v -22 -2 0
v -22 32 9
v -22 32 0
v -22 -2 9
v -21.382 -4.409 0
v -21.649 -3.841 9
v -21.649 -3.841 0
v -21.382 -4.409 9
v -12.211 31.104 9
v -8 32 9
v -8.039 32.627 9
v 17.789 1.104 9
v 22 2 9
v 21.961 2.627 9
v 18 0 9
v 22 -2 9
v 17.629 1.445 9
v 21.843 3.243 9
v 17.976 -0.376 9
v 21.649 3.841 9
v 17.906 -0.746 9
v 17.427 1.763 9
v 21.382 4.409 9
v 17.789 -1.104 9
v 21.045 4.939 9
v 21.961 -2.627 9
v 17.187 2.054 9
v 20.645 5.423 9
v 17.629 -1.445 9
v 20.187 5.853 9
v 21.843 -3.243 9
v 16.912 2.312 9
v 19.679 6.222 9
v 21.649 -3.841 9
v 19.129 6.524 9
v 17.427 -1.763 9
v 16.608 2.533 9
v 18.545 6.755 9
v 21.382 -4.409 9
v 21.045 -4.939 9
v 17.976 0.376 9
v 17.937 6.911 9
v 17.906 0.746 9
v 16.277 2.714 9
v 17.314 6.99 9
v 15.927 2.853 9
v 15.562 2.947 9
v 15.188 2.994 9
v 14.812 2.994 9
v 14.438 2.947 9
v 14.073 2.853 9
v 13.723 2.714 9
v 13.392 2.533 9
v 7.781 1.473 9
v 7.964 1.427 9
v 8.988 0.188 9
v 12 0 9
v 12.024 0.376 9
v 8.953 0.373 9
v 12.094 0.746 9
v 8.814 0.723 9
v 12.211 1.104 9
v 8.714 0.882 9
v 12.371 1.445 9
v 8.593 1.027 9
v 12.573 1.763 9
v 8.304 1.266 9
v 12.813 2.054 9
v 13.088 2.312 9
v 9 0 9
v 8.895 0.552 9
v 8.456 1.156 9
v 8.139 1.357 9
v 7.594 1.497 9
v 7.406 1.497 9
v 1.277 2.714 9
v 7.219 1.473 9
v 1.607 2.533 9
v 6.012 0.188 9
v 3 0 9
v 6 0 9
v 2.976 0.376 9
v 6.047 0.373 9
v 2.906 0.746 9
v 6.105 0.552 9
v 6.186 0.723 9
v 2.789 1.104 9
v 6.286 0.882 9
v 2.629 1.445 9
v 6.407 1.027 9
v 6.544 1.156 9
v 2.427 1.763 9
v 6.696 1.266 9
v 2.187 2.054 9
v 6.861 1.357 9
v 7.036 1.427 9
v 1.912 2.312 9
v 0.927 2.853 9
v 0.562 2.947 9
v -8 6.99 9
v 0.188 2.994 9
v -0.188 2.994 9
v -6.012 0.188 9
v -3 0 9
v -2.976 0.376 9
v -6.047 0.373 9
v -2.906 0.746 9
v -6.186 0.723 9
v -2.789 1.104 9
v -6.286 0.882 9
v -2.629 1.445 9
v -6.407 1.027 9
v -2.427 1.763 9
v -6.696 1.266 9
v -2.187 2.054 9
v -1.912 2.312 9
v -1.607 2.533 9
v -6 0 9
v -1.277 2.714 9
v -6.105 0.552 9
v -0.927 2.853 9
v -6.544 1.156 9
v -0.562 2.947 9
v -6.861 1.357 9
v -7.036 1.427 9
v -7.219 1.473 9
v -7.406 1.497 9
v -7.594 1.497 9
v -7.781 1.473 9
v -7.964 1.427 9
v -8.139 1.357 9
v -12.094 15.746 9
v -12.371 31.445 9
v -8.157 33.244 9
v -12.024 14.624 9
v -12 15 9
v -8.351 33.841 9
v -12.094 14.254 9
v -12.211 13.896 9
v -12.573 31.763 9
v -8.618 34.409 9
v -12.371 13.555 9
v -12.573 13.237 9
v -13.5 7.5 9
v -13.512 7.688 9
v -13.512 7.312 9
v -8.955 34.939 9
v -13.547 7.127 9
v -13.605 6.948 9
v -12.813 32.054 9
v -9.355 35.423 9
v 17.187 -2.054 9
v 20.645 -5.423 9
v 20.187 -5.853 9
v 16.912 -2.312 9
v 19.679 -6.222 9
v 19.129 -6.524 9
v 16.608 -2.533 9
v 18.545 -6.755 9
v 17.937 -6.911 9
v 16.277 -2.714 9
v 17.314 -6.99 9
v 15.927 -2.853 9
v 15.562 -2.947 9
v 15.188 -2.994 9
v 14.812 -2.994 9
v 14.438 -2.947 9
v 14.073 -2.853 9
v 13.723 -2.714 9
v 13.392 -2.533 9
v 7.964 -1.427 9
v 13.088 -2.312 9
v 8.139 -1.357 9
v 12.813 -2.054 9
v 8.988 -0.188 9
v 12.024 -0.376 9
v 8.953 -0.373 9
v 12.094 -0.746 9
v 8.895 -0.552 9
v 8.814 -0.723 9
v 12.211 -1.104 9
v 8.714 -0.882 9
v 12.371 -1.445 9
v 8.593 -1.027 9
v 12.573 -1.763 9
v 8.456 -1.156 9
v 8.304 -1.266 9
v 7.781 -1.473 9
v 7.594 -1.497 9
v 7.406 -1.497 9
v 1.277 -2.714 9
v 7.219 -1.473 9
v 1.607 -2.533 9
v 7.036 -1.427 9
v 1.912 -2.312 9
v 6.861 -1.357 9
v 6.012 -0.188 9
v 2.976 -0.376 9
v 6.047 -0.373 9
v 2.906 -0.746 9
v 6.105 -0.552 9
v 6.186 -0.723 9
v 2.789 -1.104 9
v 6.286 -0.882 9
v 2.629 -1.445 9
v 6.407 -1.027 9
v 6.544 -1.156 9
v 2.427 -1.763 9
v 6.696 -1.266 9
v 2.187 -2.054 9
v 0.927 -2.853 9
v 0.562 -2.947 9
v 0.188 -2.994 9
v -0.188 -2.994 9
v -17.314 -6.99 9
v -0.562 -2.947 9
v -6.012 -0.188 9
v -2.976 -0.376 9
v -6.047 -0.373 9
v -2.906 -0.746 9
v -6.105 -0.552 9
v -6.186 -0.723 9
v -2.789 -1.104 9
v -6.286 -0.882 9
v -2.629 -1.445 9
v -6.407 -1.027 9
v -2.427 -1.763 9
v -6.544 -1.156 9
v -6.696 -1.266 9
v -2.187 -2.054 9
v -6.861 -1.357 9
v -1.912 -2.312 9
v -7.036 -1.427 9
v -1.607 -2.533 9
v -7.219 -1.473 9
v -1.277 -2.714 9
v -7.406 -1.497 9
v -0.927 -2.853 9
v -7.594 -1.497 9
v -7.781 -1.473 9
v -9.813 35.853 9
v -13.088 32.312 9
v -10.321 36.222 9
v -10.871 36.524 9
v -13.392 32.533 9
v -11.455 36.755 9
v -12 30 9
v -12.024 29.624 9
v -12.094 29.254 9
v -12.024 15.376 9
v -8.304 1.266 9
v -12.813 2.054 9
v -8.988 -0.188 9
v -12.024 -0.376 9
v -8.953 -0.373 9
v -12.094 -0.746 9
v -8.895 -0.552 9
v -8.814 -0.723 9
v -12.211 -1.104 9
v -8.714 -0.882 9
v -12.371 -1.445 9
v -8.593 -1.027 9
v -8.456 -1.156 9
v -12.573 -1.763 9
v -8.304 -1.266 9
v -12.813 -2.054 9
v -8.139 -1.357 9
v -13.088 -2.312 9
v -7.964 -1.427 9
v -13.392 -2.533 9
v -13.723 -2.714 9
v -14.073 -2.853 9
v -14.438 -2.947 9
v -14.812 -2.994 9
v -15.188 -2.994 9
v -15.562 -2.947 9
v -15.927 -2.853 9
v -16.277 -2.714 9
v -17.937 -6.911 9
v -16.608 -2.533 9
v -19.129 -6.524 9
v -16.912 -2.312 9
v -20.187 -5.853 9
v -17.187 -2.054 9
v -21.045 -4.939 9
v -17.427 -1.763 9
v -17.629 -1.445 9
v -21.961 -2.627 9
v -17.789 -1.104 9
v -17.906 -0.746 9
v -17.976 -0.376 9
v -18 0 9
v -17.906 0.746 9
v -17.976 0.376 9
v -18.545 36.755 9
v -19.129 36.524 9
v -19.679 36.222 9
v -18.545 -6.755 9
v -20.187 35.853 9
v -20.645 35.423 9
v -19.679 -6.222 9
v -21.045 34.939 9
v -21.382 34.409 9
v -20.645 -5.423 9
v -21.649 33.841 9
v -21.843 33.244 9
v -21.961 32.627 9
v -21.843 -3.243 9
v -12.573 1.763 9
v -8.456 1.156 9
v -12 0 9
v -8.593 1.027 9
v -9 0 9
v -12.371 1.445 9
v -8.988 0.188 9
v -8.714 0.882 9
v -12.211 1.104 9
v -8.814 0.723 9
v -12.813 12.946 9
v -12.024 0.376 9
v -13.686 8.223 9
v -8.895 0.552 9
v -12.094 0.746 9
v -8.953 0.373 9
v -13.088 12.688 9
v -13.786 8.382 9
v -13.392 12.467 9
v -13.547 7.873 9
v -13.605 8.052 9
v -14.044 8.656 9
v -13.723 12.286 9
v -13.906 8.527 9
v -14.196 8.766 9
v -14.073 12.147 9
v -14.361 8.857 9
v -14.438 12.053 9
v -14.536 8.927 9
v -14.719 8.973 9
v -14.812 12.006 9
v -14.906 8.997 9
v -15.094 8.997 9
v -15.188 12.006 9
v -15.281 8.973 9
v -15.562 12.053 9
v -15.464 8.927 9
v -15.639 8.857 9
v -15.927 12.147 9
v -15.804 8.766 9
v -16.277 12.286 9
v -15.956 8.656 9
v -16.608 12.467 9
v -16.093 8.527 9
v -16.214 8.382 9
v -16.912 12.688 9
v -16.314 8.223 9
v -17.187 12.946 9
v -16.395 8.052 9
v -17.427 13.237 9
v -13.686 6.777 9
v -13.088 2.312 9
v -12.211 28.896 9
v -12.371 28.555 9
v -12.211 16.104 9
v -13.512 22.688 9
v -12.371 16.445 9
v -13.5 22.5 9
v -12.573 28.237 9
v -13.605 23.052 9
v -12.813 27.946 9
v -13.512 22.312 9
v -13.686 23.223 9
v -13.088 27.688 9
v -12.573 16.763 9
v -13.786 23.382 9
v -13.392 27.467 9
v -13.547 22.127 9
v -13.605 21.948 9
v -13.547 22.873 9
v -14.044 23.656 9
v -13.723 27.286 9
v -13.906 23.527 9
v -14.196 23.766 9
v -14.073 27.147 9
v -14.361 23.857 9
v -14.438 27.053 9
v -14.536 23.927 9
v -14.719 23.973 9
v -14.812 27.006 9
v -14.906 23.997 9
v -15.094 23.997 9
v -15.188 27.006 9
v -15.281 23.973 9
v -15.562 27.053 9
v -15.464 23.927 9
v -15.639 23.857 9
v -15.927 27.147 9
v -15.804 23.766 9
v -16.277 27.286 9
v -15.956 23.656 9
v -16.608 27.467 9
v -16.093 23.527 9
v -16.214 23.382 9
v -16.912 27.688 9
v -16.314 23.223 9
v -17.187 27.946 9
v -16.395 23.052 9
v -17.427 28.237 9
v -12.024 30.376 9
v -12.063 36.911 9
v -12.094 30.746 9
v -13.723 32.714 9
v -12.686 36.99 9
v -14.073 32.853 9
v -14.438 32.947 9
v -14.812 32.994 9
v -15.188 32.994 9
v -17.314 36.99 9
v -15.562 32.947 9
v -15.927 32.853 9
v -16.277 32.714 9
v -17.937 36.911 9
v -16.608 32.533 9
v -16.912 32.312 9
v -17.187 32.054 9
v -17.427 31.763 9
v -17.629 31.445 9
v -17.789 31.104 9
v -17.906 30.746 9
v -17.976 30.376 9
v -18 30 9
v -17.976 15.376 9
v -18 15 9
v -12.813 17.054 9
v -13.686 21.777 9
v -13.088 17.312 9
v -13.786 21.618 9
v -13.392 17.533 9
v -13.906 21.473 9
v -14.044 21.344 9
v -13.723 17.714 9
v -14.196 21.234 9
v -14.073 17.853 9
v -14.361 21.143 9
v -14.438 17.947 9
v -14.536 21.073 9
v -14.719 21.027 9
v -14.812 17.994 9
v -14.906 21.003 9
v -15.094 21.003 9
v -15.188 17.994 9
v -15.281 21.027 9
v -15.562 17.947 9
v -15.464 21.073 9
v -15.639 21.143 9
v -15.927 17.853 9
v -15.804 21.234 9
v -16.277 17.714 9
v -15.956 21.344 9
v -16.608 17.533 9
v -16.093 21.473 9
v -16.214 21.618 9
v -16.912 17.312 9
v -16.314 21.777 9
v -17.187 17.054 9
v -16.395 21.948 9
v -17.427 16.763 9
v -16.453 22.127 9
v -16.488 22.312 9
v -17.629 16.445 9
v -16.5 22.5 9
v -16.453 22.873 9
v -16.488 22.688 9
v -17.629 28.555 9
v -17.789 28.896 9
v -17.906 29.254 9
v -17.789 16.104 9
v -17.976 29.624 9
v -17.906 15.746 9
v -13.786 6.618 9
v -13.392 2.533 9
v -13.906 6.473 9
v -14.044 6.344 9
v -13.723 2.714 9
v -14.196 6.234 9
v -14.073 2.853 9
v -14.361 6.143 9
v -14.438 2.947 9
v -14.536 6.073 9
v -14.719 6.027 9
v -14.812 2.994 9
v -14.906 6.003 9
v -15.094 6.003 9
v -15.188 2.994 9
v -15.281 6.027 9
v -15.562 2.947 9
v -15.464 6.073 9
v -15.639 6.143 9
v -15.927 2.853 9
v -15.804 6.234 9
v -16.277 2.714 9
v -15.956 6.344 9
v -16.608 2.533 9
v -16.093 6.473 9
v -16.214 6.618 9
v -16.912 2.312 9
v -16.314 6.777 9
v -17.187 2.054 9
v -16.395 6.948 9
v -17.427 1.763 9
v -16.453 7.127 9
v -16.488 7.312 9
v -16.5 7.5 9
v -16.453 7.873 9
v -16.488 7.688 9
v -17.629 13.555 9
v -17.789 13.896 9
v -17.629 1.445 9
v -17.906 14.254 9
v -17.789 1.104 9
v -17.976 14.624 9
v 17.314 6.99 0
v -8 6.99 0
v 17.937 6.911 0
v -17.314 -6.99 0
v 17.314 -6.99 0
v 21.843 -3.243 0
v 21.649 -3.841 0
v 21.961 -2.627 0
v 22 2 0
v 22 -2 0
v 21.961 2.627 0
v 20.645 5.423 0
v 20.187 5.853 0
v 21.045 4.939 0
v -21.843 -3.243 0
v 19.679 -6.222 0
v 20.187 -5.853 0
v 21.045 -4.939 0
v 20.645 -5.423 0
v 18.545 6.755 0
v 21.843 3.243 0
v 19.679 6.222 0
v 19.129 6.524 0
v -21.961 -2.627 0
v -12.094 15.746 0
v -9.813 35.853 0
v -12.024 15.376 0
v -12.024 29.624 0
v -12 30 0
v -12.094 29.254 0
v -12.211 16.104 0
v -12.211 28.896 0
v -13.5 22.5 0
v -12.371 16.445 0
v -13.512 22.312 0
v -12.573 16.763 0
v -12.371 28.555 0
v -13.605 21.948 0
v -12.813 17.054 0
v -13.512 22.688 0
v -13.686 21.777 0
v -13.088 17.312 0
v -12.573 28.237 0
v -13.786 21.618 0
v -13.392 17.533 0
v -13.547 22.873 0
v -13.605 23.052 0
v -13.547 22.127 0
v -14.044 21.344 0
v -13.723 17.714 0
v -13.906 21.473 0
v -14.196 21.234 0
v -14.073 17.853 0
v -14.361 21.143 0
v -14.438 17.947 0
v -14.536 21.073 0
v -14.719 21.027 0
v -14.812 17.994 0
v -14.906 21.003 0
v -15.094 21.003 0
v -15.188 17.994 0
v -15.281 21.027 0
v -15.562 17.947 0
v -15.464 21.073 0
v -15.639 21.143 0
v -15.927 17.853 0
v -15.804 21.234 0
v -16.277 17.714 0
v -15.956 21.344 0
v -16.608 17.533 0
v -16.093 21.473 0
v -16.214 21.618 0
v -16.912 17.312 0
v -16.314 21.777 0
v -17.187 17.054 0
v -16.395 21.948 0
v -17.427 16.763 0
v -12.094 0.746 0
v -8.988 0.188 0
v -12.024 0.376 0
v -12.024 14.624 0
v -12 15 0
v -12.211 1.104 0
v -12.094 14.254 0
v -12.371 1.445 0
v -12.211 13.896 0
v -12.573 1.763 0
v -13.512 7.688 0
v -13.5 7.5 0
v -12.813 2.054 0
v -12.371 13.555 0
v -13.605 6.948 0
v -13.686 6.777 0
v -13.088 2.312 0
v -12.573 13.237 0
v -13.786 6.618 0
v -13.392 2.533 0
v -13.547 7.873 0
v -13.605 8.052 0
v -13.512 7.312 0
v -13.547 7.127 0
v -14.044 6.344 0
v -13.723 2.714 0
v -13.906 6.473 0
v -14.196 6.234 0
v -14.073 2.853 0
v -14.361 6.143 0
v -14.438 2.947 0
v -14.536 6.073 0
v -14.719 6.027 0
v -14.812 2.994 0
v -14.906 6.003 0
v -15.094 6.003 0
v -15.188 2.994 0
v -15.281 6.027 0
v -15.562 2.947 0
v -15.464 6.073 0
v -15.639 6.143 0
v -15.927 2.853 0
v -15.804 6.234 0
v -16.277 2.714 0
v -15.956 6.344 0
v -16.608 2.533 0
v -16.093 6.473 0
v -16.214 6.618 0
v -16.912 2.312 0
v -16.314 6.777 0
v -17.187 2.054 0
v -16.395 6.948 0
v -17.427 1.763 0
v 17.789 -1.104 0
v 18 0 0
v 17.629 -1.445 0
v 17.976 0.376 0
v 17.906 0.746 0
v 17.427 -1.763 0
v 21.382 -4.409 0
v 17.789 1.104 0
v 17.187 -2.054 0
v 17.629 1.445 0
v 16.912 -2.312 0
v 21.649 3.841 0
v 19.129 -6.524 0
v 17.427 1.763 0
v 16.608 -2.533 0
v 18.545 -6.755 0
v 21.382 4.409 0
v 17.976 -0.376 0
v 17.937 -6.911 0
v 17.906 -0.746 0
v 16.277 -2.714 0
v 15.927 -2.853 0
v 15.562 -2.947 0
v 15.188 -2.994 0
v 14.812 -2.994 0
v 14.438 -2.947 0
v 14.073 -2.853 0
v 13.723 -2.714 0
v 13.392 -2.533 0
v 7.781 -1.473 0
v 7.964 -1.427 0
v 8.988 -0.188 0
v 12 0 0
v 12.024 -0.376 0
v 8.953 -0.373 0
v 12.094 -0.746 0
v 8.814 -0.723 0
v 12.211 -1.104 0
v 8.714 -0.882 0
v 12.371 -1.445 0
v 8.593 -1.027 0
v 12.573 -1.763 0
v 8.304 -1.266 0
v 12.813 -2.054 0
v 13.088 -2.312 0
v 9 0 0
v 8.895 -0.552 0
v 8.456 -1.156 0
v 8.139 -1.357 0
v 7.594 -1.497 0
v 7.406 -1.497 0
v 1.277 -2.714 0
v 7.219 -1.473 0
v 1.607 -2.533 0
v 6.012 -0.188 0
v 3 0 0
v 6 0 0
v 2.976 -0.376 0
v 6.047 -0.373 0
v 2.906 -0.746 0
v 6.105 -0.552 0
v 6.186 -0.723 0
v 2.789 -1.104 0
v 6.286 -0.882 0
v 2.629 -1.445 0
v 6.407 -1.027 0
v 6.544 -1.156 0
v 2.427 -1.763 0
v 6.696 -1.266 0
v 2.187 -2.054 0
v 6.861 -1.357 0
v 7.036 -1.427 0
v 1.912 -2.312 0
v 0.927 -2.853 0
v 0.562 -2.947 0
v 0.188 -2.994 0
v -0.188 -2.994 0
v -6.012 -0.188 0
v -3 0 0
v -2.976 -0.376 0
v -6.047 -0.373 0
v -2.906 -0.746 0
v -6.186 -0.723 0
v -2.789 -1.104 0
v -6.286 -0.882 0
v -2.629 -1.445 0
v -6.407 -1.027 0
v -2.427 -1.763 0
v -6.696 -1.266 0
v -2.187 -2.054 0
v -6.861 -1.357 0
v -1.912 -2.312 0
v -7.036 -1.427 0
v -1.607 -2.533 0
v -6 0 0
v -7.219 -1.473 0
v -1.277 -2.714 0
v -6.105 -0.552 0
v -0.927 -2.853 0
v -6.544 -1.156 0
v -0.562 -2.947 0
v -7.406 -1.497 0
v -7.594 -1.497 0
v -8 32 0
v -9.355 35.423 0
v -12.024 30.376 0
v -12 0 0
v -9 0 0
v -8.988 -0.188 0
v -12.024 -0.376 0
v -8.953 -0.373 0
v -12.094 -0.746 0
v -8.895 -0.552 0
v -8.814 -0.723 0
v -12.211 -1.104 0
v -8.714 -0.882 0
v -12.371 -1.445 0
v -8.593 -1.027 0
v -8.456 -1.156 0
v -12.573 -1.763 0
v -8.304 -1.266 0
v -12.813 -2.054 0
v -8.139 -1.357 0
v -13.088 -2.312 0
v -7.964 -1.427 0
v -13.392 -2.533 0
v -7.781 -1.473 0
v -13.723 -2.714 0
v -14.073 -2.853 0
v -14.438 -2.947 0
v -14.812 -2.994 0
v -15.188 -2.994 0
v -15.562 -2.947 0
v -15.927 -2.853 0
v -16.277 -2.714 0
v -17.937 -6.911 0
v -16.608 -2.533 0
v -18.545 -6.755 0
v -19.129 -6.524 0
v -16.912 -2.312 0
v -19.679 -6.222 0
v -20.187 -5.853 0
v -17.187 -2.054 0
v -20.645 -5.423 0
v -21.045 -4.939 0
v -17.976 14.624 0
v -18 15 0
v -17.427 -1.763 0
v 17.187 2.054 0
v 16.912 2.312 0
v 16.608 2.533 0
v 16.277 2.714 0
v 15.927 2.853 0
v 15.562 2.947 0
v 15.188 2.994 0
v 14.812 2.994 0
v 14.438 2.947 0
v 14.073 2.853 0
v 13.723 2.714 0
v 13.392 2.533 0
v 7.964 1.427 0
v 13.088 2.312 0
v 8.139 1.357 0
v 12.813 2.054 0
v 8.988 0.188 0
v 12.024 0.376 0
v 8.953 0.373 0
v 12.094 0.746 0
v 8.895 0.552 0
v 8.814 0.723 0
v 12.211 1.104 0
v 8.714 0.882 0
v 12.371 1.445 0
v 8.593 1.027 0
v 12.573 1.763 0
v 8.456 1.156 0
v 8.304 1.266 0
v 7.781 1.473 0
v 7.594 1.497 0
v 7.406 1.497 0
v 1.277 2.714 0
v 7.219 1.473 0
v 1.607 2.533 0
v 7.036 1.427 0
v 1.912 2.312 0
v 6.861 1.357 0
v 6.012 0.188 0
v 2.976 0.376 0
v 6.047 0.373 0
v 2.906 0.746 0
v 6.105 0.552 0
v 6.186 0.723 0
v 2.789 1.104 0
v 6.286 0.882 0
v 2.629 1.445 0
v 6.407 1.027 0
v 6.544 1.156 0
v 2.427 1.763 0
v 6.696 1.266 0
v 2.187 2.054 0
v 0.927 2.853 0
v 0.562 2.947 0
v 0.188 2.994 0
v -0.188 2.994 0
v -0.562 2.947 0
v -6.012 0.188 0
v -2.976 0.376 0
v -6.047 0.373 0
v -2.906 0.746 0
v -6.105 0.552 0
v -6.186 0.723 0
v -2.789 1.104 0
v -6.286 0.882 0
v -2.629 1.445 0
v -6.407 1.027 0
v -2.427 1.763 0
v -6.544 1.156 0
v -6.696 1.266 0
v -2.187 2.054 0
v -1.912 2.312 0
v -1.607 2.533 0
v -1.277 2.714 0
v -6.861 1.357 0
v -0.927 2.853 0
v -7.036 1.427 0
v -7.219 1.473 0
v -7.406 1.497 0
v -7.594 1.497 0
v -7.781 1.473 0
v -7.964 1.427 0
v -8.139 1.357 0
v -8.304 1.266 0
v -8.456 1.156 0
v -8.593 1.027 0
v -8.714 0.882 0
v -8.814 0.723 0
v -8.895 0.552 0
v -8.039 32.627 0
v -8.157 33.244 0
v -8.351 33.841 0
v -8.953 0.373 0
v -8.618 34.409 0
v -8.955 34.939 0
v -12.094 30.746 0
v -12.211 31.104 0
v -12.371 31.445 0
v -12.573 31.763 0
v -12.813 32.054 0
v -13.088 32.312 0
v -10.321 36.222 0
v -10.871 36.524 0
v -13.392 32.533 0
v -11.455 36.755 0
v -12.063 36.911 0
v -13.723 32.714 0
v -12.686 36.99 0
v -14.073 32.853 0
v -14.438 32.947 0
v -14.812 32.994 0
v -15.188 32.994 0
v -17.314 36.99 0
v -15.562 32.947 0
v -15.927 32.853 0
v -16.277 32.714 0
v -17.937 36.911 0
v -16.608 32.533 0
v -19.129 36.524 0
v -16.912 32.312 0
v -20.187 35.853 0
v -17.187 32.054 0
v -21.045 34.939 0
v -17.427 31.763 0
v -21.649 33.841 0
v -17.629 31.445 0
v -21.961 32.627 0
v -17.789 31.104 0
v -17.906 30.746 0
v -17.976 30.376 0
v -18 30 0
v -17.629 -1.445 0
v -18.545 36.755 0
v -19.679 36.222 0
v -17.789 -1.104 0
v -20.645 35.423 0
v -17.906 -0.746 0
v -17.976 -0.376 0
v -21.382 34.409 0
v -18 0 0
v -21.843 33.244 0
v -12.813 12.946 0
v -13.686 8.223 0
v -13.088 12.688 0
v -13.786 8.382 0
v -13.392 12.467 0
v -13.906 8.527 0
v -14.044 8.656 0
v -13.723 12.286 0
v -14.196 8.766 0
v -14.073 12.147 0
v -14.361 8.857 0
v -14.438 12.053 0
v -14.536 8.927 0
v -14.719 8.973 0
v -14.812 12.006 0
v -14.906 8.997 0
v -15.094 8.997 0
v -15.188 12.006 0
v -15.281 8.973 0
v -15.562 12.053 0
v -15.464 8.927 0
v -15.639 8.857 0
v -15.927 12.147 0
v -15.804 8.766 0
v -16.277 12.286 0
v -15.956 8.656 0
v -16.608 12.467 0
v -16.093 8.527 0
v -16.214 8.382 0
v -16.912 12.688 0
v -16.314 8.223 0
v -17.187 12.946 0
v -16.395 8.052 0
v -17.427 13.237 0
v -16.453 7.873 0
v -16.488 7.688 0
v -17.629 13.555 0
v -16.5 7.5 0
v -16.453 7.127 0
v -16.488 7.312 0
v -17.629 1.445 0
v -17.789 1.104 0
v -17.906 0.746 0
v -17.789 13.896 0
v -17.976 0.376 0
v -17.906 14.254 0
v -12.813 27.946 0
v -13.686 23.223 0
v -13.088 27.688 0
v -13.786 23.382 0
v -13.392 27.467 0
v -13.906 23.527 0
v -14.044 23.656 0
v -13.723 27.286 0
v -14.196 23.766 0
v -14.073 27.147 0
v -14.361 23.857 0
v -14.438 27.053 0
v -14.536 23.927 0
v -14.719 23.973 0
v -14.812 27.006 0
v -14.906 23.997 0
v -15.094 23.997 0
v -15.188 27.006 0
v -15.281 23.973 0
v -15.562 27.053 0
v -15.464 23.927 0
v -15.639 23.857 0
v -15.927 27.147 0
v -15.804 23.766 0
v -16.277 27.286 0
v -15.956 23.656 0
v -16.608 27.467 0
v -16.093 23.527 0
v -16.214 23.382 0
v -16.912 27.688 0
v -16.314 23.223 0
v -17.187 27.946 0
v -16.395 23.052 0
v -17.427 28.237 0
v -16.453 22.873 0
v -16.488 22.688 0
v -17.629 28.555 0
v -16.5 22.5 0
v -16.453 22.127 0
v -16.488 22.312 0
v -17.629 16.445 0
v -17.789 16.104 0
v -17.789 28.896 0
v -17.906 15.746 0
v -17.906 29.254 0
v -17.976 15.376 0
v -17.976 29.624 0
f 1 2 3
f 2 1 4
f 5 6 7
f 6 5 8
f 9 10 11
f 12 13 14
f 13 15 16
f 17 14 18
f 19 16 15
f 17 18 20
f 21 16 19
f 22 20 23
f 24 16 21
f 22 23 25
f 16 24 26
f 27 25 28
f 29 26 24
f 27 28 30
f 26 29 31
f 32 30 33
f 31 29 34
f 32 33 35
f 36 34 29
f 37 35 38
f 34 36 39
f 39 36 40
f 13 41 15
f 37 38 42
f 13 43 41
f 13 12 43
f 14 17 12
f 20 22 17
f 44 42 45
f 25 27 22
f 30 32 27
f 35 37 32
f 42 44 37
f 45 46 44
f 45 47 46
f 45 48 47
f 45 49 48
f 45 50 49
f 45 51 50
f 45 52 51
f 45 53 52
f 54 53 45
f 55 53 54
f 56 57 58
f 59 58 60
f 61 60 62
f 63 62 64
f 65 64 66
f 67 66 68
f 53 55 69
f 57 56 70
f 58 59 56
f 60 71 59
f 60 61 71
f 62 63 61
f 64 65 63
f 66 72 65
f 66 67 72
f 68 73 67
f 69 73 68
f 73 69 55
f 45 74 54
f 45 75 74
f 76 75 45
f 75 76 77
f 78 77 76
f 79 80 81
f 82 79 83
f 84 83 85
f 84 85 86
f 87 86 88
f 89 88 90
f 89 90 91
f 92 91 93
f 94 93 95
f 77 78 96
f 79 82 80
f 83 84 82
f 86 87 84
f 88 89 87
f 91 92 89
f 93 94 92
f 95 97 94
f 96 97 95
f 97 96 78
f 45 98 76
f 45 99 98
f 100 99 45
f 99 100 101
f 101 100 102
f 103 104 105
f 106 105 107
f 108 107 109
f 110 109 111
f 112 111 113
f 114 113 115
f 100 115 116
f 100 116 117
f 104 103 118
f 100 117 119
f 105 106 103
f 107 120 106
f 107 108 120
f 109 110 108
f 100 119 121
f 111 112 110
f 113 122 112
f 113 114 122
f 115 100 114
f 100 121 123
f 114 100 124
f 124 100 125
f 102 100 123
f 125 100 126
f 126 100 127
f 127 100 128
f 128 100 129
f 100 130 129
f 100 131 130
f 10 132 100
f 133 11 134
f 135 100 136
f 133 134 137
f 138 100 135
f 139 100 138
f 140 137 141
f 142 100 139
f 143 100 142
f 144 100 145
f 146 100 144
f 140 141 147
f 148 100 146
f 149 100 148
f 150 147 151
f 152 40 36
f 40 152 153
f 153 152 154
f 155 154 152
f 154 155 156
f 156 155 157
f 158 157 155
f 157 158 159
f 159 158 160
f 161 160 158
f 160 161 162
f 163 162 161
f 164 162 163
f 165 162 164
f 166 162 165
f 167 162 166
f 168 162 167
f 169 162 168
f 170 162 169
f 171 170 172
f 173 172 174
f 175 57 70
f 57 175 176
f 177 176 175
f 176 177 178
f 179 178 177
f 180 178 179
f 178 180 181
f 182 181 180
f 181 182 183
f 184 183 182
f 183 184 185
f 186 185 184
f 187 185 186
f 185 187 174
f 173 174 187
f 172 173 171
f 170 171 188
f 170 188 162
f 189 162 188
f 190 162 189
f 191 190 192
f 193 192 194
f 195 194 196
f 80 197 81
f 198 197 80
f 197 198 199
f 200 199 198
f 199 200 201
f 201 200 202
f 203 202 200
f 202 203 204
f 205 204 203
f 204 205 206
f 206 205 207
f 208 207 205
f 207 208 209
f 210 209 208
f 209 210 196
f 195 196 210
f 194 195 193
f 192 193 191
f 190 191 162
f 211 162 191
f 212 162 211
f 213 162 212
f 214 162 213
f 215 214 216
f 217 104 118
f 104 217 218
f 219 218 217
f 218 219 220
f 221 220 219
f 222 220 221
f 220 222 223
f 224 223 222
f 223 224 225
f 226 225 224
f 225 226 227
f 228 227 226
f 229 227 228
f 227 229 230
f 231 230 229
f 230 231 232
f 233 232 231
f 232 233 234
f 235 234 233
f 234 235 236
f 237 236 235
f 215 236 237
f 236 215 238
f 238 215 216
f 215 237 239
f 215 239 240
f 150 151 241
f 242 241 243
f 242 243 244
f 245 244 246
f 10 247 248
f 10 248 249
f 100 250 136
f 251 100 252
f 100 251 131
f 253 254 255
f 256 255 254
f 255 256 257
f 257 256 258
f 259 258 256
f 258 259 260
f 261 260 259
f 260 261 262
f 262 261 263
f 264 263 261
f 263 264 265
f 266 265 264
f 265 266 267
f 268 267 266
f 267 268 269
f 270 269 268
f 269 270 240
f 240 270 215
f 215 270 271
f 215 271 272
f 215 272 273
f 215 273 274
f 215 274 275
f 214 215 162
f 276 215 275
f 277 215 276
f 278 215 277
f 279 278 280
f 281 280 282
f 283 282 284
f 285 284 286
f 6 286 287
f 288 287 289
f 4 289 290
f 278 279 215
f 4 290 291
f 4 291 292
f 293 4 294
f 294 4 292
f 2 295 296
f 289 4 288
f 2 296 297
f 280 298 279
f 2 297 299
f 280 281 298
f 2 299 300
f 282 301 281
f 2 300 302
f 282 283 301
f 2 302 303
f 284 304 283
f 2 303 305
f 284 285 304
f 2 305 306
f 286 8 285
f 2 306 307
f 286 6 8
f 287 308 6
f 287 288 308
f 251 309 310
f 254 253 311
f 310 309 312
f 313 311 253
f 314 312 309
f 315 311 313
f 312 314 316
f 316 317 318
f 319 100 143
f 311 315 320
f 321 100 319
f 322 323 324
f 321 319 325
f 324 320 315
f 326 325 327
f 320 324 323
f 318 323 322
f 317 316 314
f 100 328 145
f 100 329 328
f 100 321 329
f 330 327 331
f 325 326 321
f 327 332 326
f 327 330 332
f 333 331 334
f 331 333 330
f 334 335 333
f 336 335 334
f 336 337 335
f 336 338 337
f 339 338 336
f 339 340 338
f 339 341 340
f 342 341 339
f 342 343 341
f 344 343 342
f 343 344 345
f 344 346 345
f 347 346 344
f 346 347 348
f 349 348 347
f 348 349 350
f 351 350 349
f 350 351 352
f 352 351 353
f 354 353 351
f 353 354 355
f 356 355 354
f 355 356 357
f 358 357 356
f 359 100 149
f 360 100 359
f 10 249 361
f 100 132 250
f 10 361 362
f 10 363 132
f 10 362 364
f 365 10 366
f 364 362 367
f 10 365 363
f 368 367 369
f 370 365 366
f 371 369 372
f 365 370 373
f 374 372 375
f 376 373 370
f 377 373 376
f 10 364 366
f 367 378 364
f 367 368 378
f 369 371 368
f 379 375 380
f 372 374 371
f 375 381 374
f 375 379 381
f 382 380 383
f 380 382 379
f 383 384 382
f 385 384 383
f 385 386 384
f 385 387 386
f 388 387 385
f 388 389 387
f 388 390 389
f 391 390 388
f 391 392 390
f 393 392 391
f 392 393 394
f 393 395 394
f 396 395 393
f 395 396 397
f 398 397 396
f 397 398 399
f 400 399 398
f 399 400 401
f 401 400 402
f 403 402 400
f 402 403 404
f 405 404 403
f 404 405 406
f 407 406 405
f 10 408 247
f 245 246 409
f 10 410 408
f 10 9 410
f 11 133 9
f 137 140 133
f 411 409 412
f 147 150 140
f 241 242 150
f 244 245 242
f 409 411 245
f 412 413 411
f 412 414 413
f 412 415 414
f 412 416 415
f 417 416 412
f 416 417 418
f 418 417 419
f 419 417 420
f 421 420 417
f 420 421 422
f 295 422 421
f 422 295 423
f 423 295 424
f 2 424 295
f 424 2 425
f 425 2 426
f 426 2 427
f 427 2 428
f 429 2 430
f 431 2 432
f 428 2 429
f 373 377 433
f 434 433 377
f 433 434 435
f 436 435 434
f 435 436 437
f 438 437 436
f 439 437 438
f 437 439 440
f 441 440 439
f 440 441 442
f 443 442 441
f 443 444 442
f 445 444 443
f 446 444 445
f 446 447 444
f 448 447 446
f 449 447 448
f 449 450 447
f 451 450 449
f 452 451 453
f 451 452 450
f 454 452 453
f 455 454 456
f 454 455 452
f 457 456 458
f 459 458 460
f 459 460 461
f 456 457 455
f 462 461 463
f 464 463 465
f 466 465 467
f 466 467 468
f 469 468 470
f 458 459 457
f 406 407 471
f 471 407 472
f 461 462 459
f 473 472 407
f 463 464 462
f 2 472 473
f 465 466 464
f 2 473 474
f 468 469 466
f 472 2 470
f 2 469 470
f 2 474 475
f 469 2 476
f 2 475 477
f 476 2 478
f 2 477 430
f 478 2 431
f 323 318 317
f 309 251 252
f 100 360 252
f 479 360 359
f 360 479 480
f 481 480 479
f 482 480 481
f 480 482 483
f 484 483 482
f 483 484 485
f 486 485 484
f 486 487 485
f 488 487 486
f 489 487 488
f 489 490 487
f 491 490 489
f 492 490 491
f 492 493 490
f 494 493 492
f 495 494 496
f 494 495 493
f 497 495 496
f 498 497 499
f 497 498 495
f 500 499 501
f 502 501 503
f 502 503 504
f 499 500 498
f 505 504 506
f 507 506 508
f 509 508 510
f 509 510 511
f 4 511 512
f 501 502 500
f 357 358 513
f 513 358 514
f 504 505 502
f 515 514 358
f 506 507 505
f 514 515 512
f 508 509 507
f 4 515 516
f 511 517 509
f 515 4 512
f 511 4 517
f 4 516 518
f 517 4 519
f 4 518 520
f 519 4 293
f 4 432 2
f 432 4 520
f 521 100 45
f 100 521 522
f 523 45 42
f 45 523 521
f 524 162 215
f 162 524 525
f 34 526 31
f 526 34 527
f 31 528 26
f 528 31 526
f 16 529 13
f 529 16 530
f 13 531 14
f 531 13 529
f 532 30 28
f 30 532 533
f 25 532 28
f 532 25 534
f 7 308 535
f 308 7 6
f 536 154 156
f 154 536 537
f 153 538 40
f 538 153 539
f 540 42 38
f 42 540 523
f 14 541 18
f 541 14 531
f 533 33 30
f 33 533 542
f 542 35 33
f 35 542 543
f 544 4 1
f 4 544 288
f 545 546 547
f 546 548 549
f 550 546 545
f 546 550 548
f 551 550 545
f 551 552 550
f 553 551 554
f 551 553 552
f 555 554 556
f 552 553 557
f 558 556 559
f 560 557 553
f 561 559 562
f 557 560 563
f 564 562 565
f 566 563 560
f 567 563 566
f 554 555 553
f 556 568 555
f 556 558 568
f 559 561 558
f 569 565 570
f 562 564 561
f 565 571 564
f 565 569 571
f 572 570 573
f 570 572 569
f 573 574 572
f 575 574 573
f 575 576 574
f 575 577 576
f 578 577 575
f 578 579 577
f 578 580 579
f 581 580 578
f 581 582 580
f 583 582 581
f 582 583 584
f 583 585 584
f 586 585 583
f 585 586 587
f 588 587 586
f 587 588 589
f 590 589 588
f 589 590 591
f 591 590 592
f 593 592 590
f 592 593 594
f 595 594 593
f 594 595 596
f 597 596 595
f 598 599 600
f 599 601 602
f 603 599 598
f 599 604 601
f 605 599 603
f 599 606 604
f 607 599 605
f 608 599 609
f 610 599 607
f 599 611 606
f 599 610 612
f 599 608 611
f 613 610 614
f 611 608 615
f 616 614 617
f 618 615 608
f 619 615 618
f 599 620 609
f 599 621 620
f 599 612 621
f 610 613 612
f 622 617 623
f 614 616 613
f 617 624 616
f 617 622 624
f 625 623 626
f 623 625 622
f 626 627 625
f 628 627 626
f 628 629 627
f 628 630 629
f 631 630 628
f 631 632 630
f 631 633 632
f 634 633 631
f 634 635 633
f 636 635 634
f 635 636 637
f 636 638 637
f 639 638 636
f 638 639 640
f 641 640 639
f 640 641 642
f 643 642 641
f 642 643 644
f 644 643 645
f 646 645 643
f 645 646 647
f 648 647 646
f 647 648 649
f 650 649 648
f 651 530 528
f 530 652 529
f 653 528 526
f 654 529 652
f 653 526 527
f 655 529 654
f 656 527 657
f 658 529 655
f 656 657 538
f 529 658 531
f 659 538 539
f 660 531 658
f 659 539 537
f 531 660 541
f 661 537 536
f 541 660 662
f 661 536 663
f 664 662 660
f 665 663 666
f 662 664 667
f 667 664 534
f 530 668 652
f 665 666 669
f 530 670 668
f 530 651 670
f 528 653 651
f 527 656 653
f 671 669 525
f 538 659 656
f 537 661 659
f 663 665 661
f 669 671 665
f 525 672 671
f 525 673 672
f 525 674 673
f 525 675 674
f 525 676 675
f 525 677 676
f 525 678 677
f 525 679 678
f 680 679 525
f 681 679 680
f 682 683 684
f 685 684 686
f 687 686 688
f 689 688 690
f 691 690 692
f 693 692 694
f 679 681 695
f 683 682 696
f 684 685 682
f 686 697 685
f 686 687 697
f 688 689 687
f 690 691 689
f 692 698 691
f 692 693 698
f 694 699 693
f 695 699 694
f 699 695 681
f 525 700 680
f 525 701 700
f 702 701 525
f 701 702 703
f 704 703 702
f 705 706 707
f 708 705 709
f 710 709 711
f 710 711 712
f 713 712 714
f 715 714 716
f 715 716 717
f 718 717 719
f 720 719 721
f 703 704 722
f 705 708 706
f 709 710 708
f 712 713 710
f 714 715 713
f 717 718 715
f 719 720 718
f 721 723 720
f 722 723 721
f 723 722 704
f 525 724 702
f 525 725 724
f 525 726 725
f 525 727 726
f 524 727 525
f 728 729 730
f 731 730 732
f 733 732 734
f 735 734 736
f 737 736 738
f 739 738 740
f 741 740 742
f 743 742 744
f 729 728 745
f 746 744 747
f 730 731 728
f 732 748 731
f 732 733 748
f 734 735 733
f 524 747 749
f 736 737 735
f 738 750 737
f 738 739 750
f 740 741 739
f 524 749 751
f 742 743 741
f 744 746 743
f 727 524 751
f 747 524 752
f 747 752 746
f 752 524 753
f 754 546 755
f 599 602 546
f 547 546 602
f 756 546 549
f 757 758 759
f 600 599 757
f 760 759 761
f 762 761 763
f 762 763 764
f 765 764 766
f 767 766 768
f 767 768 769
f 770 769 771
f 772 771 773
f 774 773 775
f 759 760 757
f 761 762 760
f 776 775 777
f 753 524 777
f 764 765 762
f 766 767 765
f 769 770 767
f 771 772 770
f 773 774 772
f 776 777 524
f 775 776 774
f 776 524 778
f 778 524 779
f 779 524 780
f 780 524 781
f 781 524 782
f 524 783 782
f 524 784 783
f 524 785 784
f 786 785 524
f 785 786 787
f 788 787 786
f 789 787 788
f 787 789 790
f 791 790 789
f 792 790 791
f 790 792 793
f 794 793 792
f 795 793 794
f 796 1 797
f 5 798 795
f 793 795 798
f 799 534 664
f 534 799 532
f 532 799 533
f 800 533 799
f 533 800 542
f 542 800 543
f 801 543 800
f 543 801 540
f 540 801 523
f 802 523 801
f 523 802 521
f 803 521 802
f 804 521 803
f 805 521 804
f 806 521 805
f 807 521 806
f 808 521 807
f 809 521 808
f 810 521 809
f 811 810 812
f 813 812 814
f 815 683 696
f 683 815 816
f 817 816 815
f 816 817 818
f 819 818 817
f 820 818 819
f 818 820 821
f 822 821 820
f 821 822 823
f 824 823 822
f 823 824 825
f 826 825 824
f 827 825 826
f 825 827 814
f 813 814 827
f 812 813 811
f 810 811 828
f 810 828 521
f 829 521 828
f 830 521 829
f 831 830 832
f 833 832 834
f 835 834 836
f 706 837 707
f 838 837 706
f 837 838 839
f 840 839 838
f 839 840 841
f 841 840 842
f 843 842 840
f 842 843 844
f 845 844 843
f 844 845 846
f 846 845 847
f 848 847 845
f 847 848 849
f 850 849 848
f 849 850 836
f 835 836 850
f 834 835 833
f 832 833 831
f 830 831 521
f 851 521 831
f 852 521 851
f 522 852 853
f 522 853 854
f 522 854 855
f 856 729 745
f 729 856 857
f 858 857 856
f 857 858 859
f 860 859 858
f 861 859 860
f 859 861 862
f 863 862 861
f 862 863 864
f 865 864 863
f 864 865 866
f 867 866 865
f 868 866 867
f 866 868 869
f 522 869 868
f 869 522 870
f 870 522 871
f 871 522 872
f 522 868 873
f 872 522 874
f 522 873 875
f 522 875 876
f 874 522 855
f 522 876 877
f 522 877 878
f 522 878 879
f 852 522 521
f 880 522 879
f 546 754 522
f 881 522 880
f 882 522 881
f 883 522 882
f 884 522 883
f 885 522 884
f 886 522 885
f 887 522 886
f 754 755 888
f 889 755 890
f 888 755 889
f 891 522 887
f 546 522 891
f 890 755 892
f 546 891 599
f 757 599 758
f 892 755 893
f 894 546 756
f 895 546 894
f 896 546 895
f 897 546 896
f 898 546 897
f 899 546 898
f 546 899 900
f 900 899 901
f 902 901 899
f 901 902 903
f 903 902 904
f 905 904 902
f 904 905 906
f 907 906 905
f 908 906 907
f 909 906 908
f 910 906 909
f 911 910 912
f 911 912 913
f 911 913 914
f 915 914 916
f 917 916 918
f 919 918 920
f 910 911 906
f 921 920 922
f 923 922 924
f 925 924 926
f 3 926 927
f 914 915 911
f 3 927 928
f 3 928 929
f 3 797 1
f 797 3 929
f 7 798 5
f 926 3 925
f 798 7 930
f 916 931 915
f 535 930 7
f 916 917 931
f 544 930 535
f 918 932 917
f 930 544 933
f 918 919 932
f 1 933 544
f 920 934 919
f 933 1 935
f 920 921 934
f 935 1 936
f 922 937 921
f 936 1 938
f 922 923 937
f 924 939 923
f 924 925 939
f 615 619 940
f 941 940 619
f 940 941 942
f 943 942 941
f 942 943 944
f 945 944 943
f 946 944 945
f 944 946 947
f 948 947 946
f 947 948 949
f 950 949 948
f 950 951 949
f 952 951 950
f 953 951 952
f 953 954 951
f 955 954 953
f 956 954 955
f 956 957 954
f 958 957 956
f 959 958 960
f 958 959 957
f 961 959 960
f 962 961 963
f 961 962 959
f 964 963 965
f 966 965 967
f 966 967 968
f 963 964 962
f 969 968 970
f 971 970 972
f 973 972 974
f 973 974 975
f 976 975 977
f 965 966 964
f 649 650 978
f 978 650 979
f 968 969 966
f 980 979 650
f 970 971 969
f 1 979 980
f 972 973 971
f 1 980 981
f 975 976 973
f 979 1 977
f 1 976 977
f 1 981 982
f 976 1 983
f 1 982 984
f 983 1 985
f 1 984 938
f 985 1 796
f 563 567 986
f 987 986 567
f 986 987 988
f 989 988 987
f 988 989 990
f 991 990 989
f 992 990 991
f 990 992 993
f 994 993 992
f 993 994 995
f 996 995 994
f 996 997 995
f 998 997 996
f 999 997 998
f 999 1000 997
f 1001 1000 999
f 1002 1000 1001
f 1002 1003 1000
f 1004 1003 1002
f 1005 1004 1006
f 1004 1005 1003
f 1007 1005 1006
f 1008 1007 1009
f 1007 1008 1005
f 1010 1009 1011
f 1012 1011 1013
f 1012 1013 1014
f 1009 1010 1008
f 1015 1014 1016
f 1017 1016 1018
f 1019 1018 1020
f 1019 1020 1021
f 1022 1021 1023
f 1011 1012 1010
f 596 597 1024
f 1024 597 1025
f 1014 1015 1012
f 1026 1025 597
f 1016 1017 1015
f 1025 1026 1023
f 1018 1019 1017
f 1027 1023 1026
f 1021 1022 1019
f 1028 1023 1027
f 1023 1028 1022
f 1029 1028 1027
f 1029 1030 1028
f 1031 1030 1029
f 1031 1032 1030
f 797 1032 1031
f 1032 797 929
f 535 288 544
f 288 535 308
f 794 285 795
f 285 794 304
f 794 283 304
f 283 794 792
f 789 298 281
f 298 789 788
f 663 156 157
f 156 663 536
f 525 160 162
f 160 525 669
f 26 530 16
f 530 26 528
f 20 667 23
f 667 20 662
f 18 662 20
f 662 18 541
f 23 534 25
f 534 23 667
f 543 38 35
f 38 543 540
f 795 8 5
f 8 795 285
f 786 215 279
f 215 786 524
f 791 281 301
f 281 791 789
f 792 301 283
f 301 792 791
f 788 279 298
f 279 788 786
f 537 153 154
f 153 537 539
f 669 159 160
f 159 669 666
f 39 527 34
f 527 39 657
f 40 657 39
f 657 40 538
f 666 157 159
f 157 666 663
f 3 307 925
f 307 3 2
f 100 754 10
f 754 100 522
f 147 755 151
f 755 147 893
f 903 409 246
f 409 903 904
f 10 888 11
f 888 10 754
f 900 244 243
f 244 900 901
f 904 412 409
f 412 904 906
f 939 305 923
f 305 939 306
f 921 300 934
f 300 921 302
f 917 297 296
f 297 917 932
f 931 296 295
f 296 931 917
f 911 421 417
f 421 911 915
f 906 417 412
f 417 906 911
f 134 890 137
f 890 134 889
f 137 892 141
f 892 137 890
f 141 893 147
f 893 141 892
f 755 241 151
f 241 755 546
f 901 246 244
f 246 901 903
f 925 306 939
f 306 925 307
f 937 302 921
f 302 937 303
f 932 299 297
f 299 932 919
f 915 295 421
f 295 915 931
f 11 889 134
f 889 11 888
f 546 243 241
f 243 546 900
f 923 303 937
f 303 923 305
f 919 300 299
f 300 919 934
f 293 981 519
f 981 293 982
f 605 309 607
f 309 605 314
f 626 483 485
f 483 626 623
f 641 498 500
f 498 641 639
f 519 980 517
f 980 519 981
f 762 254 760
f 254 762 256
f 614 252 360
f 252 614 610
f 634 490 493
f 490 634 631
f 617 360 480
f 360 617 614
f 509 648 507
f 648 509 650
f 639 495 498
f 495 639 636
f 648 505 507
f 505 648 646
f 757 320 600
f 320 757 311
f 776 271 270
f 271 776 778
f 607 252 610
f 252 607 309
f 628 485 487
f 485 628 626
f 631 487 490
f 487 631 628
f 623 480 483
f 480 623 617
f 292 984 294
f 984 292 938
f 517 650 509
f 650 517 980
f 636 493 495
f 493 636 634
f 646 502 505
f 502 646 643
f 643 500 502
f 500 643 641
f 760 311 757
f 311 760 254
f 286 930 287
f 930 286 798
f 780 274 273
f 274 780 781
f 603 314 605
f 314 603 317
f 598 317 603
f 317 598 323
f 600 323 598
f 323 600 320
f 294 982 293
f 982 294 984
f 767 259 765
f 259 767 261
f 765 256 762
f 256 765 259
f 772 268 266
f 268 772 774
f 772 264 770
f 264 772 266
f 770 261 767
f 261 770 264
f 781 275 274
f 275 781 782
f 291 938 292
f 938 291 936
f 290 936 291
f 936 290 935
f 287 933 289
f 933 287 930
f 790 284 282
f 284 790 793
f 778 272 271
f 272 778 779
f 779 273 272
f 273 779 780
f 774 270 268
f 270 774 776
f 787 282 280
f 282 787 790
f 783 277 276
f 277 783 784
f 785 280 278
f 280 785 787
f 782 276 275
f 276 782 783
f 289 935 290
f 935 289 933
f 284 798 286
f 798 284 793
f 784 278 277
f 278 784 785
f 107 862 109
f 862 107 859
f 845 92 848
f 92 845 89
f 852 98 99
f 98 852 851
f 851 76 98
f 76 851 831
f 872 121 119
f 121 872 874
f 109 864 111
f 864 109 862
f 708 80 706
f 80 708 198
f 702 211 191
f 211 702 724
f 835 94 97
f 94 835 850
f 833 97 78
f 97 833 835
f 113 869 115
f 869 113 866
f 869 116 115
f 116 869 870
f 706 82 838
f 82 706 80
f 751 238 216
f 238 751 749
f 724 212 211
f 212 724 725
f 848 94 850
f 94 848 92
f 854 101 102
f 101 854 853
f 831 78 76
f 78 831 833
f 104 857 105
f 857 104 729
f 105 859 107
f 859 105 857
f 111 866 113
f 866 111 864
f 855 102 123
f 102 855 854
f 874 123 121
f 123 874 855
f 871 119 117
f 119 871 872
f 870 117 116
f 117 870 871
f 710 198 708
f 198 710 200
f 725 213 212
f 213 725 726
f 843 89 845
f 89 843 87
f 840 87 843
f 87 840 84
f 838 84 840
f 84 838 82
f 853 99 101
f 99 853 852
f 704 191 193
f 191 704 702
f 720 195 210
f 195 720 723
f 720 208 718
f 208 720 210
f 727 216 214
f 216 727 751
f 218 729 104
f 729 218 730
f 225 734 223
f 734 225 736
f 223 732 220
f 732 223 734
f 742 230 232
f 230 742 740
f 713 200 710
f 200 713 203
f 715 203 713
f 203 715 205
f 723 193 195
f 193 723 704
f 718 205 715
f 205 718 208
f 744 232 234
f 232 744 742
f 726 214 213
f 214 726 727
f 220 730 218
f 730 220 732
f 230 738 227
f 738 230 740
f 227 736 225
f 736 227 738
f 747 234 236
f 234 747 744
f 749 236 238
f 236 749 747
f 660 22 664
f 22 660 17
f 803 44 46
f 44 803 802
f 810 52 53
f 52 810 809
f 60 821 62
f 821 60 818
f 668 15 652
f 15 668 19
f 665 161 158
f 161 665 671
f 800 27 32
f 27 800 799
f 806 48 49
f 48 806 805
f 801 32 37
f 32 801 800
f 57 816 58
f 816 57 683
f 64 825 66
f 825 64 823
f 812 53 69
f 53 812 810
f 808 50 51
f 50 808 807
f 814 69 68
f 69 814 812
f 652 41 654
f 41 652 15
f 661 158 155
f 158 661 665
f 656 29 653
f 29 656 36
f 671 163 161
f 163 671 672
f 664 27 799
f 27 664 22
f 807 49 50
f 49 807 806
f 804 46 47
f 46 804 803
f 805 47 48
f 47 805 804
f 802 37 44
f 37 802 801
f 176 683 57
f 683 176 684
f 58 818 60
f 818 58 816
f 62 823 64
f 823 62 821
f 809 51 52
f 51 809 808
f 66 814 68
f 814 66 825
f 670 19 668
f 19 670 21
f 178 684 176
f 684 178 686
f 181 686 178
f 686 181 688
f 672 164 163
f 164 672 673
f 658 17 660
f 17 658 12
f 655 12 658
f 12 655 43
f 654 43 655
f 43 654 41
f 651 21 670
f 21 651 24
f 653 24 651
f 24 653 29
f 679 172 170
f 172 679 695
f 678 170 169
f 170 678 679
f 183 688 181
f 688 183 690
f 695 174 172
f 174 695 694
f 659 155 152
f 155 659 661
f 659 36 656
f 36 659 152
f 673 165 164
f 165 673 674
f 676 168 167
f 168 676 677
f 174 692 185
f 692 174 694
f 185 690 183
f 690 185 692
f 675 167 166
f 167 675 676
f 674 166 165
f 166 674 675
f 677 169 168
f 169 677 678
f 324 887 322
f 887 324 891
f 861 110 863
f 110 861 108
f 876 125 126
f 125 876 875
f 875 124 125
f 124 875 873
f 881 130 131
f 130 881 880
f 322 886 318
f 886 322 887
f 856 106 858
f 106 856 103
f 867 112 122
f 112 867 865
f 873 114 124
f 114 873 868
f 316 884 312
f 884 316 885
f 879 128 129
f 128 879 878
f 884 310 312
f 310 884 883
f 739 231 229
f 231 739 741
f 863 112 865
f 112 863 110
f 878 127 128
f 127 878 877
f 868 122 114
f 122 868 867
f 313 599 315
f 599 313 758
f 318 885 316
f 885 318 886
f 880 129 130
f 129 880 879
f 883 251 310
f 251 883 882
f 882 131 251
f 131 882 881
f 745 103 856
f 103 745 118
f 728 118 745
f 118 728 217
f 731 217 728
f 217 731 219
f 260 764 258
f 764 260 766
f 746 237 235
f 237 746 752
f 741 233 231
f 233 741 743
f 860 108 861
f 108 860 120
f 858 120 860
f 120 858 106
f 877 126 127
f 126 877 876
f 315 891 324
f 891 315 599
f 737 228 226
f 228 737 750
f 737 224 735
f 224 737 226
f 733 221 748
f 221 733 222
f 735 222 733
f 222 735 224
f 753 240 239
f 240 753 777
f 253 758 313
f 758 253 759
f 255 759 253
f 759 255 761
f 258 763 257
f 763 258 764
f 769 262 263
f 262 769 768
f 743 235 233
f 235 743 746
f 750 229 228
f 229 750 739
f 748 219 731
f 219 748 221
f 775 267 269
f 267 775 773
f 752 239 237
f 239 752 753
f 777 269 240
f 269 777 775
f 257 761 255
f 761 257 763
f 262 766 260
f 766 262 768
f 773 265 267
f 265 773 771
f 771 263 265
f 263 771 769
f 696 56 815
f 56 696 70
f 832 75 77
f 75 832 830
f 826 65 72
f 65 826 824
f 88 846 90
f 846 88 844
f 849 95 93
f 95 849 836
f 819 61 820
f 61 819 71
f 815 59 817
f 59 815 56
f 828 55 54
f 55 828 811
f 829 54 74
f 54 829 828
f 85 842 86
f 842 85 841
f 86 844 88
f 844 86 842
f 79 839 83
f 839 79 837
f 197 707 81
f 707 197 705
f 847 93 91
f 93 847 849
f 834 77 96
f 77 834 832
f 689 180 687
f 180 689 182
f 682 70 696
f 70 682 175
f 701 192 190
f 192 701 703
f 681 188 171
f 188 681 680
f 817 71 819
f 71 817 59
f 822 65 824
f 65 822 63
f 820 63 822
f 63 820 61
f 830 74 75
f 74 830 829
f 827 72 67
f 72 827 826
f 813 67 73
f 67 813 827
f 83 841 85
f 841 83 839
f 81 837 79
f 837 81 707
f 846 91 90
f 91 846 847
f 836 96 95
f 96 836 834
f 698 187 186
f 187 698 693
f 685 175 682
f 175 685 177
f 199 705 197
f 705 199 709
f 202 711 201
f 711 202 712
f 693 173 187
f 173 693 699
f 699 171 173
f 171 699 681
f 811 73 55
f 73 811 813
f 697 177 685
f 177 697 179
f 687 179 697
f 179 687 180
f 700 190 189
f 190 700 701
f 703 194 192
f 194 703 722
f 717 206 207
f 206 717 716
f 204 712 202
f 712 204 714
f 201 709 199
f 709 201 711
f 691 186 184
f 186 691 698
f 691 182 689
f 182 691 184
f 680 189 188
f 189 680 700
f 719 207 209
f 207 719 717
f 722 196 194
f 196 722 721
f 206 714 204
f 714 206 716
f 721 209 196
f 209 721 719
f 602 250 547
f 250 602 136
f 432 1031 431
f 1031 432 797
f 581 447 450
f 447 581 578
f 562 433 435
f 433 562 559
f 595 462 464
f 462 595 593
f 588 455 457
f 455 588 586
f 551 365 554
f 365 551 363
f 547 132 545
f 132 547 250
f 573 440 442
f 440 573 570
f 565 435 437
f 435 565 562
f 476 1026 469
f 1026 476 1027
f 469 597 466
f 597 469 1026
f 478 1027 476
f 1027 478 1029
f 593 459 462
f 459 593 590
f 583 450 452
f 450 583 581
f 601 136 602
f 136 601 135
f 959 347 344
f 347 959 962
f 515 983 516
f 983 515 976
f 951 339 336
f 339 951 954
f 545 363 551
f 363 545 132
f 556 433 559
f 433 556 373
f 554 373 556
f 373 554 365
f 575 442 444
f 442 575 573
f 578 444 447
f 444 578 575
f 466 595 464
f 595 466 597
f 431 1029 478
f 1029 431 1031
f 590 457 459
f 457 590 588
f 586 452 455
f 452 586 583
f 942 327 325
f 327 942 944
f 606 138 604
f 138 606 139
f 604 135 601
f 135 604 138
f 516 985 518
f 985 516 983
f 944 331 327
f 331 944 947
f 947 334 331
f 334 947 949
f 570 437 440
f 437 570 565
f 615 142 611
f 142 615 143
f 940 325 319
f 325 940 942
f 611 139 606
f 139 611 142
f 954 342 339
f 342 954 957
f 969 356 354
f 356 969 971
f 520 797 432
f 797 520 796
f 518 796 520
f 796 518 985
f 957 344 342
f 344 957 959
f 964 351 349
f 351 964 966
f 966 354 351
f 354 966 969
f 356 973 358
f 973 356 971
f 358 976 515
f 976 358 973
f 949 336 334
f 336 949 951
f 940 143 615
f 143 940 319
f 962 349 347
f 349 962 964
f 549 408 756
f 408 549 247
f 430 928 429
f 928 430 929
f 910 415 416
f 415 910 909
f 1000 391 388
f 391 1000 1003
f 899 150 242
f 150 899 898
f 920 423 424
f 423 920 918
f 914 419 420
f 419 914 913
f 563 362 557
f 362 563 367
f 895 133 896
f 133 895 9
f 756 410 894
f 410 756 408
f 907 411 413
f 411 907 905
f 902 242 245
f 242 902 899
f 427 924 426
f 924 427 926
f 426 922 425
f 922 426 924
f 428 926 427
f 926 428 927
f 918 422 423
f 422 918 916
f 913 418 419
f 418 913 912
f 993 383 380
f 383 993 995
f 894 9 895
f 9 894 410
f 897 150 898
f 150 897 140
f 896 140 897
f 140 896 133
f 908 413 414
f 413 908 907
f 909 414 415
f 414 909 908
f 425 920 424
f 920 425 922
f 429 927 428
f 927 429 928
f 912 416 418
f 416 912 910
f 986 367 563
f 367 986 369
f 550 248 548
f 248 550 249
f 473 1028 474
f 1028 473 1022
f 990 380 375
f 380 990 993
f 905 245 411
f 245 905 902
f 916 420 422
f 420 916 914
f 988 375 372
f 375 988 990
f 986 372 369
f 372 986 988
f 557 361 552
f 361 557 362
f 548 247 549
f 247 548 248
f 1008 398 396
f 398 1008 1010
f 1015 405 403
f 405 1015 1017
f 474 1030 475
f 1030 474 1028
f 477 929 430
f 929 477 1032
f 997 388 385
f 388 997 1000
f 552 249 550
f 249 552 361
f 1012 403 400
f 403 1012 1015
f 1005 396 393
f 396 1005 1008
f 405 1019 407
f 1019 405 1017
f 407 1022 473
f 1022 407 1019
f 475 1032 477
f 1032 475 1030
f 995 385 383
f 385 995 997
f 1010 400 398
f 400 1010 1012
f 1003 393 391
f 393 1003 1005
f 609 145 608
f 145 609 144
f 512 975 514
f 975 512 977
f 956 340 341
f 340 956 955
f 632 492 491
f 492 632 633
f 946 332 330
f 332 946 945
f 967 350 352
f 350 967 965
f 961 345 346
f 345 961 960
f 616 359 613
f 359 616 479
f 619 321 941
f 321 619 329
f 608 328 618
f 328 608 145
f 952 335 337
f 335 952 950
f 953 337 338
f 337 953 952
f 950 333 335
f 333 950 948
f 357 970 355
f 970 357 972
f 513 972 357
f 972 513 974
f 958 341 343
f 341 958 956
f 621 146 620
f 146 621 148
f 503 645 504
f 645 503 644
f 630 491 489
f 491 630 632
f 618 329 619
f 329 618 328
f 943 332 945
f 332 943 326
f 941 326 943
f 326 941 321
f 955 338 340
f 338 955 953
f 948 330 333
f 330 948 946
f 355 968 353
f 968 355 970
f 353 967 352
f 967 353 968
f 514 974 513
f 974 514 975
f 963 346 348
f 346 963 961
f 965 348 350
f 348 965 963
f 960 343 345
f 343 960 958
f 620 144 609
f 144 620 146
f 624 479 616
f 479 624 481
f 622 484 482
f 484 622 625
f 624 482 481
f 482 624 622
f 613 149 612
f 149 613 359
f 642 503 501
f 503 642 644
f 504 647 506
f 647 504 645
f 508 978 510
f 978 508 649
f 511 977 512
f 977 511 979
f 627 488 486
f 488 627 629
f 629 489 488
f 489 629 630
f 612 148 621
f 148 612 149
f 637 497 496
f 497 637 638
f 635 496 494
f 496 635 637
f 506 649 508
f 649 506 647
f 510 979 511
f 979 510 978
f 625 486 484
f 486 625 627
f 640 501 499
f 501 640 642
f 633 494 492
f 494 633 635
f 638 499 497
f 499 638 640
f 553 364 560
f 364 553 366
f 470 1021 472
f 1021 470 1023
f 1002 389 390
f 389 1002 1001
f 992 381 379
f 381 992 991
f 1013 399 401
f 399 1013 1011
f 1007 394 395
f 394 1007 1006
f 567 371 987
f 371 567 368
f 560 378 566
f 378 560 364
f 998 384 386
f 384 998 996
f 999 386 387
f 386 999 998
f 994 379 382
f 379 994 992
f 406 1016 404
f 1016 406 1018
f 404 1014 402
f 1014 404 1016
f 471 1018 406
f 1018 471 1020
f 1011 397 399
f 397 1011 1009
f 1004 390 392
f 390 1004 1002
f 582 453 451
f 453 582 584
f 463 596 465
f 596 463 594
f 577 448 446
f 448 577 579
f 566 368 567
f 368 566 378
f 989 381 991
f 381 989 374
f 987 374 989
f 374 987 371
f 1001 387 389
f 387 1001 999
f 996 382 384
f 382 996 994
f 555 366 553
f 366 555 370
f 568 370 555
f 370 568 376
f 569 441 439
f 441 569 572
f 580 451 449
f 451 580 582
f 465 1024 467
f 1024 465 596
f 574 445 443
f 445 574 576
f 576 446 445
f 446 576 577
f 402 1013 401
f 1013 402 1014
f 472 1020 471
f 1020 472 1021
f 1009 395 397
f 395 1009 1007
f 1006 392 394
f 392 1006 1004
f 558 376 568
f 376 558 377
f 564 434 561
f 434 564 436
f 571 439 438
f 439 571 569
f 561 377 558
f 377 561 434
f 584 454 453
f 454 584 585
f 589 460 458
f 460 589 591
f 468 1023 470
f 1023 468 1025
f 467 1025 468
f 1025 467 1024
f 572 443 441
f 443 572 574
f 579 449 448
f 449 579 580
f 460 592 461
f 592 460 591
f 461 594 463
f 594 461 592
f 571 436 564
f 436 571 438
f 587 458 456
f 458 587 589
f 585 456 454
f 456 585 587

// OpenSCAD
$fn = 50;


difference() {
	union() {
		*color(alpha = 1.0000000000, c = "gray") {
			translate(v = [0, 7, 0]) {
				linear_extrude(height = 1) {
					text(font = "Arial:style=Bold", halign = "center", size = 4.5000000000, text = "COMMENT plate main", valign = "center");
				}
			}
		}
		hull() {
			translate(v = [-17.0000000000, 2.0000000000, 0]) {
				cylinder(h = 9, r = 5);
			}
			translate(v = [17.0000000000, 2.0000000000, 0]) {
				cylinder(h = 9, r = 5);
			}
			translate(v = [-17.0000000000, -2.0000000000, 0]) {
				cylinder(h = 9, r = 5);
			}
			translate(v = [17.0000000000, -2.0000000000, 0]) {
				cylinder(h = 9, r = 5);
			}
		}
		*color(alpha = 1.0000000000, c = "gray") {
			translate(v = [0, 7, 0]) {
				linear_extrude(height = 1) {
					text(font = "Arial:style=Bold", halign = "center", size = 4.5000000000, text = "COMMENT plate main", valign = "center");
				}
			}
		}
		translate(v = [-15.0000000000, 15.0000000000, 0]) {
			hull() {
				translate(v = [-2.0000000000, 17.0000000000, 0]) {
					cylinder(h = 9, r = 5);
				}
				translate(v = [2.0000000000, 17.0000000000, 0]) {
					cylinder(h = 9, r = 5);
				}
				translate(v = [-2.0000000000, -17.0000000000, 0]) {
					cylinder(h = 9, r = 5);
				}
				translate(v = [2.0000000000, -17.0000000000, 0]) {
					cylinder(h = 9, r = 5);
				}
			}
		}
	}
	union() {
		*color(alpha = 1.0000000000, c = "gray") {
			translate(v = [0, 7, 0]) {
				linear_extrude(height = 1) {
					text(font = "Arial:style=Bold", halign = "center", size = 4.5000000000, text = "COMMENT holes main", valign = "center");
				}
			}
		}
		translate(v = [-15.0000000000, 0.0000000000, 0]) {
			translate(v = [0, 0, -100]) {
				cylinder(h = 200, r = 3.0000000000);
			}
		}
		translate(v = [0, 0, -100]) {
			cylinder(h = 200, r = 3.0000000000);
		}
		translate(v = [15.0000000000, 0.0000000000, 0]) {
			translate(v = [0, 0, -100]) {
				cylinder(h = 200, r = 3.0000000000);
			}
		}
		translate(v = [-15.0000000000, 0.0000000000, 0]) {
			translate(v = [0, 0, -100]) {
				cylinder(h = 200, r = 1.5000000000);
			}
		}
		translate(v = [-7.5000000000, 0.0000000000, 0]) {
			translate(v = [0, 0, -100]) {
				cylinder(h = 200, r = 1.5000000000);
			}
		}
		translate(v = [0, 0, -100]) {
			cylinder(h = 200, r = 1.5000000000);
		}
		translate(v = [7.5000000000, 0.0000000000, 0]) {
			translate(v = [0, 0, -100]) {
				cylinder(h = 200, r = 1.5000000000);
			}
		}
		translate(v = [15.0000000000, 0.0000000000, 0]) {
			translate(v = [0, 0, -100]) {
				cylinder(h = 200, r = 1.5000000000);
			}
		}
		*color(alpha = 1.0000000000, c = "gray") {
			translate(v = [0, 7, 0]) {
				linear_extrude(height = 1) {
					text(font = "Arial:style=Bold", halign = "center", size = 4.5000000000, text = "COMMENT holes main", valign = "center");
				}
			}
		}
		translate(v = [-15.0000000000, 0.0000000000, 0]) {
			translate(v = [0, 0, -100]) {
				cylinder(h = 200, r = 3.0000000000);
			}
		}
		translate(v = [-15.0000000000, 15.0000000000, 0]) {
			translate(v = [0, 0, -100]) {
				cylinder(h = 200, r = 3.0000000000);
			}
		}
		translate(v = [-15.0000000000, 30.0000000000, 0]) {
			translate(v = [0, 0, -100]) {
				cylinder(h = 200, r = 3.0000000000);
			}
		}
		translate(v = [-15.0000000000, 0.0000000000, 0]) {
			translate(v = [0, 0, -100]) {
				cylinder(h = 200, r = 1.5000000000);
			}
		}
		translate(v = [-15.0000000000, 7.5000000000, 0]) {
			translate(v = [0, 0, -100]) {
				cylinder(h = 200, r = 1.5000000000);
			}
		}
		translate(v = [-15.0000000000, 15.0000000000, 0]) {
			translate(v = [0, 0, -100]) {
				cylinder(h = 200, r = 1.5000000000);
			}
		}
		translate(v = [-15.0000000000, 22.5000000000, 0]) {
			translate(v = [0, 0, -100]) {
				cylinder(h = 200, r = 1.5000000000);
			}
		}
		translate(v = [-15.0000000000, 30.0000000000, 0]) {
			translate(v = [0, 0, -100]) {
				cylinder(h = 200, r = 1.5000000000);
			}
		}
	}
}
